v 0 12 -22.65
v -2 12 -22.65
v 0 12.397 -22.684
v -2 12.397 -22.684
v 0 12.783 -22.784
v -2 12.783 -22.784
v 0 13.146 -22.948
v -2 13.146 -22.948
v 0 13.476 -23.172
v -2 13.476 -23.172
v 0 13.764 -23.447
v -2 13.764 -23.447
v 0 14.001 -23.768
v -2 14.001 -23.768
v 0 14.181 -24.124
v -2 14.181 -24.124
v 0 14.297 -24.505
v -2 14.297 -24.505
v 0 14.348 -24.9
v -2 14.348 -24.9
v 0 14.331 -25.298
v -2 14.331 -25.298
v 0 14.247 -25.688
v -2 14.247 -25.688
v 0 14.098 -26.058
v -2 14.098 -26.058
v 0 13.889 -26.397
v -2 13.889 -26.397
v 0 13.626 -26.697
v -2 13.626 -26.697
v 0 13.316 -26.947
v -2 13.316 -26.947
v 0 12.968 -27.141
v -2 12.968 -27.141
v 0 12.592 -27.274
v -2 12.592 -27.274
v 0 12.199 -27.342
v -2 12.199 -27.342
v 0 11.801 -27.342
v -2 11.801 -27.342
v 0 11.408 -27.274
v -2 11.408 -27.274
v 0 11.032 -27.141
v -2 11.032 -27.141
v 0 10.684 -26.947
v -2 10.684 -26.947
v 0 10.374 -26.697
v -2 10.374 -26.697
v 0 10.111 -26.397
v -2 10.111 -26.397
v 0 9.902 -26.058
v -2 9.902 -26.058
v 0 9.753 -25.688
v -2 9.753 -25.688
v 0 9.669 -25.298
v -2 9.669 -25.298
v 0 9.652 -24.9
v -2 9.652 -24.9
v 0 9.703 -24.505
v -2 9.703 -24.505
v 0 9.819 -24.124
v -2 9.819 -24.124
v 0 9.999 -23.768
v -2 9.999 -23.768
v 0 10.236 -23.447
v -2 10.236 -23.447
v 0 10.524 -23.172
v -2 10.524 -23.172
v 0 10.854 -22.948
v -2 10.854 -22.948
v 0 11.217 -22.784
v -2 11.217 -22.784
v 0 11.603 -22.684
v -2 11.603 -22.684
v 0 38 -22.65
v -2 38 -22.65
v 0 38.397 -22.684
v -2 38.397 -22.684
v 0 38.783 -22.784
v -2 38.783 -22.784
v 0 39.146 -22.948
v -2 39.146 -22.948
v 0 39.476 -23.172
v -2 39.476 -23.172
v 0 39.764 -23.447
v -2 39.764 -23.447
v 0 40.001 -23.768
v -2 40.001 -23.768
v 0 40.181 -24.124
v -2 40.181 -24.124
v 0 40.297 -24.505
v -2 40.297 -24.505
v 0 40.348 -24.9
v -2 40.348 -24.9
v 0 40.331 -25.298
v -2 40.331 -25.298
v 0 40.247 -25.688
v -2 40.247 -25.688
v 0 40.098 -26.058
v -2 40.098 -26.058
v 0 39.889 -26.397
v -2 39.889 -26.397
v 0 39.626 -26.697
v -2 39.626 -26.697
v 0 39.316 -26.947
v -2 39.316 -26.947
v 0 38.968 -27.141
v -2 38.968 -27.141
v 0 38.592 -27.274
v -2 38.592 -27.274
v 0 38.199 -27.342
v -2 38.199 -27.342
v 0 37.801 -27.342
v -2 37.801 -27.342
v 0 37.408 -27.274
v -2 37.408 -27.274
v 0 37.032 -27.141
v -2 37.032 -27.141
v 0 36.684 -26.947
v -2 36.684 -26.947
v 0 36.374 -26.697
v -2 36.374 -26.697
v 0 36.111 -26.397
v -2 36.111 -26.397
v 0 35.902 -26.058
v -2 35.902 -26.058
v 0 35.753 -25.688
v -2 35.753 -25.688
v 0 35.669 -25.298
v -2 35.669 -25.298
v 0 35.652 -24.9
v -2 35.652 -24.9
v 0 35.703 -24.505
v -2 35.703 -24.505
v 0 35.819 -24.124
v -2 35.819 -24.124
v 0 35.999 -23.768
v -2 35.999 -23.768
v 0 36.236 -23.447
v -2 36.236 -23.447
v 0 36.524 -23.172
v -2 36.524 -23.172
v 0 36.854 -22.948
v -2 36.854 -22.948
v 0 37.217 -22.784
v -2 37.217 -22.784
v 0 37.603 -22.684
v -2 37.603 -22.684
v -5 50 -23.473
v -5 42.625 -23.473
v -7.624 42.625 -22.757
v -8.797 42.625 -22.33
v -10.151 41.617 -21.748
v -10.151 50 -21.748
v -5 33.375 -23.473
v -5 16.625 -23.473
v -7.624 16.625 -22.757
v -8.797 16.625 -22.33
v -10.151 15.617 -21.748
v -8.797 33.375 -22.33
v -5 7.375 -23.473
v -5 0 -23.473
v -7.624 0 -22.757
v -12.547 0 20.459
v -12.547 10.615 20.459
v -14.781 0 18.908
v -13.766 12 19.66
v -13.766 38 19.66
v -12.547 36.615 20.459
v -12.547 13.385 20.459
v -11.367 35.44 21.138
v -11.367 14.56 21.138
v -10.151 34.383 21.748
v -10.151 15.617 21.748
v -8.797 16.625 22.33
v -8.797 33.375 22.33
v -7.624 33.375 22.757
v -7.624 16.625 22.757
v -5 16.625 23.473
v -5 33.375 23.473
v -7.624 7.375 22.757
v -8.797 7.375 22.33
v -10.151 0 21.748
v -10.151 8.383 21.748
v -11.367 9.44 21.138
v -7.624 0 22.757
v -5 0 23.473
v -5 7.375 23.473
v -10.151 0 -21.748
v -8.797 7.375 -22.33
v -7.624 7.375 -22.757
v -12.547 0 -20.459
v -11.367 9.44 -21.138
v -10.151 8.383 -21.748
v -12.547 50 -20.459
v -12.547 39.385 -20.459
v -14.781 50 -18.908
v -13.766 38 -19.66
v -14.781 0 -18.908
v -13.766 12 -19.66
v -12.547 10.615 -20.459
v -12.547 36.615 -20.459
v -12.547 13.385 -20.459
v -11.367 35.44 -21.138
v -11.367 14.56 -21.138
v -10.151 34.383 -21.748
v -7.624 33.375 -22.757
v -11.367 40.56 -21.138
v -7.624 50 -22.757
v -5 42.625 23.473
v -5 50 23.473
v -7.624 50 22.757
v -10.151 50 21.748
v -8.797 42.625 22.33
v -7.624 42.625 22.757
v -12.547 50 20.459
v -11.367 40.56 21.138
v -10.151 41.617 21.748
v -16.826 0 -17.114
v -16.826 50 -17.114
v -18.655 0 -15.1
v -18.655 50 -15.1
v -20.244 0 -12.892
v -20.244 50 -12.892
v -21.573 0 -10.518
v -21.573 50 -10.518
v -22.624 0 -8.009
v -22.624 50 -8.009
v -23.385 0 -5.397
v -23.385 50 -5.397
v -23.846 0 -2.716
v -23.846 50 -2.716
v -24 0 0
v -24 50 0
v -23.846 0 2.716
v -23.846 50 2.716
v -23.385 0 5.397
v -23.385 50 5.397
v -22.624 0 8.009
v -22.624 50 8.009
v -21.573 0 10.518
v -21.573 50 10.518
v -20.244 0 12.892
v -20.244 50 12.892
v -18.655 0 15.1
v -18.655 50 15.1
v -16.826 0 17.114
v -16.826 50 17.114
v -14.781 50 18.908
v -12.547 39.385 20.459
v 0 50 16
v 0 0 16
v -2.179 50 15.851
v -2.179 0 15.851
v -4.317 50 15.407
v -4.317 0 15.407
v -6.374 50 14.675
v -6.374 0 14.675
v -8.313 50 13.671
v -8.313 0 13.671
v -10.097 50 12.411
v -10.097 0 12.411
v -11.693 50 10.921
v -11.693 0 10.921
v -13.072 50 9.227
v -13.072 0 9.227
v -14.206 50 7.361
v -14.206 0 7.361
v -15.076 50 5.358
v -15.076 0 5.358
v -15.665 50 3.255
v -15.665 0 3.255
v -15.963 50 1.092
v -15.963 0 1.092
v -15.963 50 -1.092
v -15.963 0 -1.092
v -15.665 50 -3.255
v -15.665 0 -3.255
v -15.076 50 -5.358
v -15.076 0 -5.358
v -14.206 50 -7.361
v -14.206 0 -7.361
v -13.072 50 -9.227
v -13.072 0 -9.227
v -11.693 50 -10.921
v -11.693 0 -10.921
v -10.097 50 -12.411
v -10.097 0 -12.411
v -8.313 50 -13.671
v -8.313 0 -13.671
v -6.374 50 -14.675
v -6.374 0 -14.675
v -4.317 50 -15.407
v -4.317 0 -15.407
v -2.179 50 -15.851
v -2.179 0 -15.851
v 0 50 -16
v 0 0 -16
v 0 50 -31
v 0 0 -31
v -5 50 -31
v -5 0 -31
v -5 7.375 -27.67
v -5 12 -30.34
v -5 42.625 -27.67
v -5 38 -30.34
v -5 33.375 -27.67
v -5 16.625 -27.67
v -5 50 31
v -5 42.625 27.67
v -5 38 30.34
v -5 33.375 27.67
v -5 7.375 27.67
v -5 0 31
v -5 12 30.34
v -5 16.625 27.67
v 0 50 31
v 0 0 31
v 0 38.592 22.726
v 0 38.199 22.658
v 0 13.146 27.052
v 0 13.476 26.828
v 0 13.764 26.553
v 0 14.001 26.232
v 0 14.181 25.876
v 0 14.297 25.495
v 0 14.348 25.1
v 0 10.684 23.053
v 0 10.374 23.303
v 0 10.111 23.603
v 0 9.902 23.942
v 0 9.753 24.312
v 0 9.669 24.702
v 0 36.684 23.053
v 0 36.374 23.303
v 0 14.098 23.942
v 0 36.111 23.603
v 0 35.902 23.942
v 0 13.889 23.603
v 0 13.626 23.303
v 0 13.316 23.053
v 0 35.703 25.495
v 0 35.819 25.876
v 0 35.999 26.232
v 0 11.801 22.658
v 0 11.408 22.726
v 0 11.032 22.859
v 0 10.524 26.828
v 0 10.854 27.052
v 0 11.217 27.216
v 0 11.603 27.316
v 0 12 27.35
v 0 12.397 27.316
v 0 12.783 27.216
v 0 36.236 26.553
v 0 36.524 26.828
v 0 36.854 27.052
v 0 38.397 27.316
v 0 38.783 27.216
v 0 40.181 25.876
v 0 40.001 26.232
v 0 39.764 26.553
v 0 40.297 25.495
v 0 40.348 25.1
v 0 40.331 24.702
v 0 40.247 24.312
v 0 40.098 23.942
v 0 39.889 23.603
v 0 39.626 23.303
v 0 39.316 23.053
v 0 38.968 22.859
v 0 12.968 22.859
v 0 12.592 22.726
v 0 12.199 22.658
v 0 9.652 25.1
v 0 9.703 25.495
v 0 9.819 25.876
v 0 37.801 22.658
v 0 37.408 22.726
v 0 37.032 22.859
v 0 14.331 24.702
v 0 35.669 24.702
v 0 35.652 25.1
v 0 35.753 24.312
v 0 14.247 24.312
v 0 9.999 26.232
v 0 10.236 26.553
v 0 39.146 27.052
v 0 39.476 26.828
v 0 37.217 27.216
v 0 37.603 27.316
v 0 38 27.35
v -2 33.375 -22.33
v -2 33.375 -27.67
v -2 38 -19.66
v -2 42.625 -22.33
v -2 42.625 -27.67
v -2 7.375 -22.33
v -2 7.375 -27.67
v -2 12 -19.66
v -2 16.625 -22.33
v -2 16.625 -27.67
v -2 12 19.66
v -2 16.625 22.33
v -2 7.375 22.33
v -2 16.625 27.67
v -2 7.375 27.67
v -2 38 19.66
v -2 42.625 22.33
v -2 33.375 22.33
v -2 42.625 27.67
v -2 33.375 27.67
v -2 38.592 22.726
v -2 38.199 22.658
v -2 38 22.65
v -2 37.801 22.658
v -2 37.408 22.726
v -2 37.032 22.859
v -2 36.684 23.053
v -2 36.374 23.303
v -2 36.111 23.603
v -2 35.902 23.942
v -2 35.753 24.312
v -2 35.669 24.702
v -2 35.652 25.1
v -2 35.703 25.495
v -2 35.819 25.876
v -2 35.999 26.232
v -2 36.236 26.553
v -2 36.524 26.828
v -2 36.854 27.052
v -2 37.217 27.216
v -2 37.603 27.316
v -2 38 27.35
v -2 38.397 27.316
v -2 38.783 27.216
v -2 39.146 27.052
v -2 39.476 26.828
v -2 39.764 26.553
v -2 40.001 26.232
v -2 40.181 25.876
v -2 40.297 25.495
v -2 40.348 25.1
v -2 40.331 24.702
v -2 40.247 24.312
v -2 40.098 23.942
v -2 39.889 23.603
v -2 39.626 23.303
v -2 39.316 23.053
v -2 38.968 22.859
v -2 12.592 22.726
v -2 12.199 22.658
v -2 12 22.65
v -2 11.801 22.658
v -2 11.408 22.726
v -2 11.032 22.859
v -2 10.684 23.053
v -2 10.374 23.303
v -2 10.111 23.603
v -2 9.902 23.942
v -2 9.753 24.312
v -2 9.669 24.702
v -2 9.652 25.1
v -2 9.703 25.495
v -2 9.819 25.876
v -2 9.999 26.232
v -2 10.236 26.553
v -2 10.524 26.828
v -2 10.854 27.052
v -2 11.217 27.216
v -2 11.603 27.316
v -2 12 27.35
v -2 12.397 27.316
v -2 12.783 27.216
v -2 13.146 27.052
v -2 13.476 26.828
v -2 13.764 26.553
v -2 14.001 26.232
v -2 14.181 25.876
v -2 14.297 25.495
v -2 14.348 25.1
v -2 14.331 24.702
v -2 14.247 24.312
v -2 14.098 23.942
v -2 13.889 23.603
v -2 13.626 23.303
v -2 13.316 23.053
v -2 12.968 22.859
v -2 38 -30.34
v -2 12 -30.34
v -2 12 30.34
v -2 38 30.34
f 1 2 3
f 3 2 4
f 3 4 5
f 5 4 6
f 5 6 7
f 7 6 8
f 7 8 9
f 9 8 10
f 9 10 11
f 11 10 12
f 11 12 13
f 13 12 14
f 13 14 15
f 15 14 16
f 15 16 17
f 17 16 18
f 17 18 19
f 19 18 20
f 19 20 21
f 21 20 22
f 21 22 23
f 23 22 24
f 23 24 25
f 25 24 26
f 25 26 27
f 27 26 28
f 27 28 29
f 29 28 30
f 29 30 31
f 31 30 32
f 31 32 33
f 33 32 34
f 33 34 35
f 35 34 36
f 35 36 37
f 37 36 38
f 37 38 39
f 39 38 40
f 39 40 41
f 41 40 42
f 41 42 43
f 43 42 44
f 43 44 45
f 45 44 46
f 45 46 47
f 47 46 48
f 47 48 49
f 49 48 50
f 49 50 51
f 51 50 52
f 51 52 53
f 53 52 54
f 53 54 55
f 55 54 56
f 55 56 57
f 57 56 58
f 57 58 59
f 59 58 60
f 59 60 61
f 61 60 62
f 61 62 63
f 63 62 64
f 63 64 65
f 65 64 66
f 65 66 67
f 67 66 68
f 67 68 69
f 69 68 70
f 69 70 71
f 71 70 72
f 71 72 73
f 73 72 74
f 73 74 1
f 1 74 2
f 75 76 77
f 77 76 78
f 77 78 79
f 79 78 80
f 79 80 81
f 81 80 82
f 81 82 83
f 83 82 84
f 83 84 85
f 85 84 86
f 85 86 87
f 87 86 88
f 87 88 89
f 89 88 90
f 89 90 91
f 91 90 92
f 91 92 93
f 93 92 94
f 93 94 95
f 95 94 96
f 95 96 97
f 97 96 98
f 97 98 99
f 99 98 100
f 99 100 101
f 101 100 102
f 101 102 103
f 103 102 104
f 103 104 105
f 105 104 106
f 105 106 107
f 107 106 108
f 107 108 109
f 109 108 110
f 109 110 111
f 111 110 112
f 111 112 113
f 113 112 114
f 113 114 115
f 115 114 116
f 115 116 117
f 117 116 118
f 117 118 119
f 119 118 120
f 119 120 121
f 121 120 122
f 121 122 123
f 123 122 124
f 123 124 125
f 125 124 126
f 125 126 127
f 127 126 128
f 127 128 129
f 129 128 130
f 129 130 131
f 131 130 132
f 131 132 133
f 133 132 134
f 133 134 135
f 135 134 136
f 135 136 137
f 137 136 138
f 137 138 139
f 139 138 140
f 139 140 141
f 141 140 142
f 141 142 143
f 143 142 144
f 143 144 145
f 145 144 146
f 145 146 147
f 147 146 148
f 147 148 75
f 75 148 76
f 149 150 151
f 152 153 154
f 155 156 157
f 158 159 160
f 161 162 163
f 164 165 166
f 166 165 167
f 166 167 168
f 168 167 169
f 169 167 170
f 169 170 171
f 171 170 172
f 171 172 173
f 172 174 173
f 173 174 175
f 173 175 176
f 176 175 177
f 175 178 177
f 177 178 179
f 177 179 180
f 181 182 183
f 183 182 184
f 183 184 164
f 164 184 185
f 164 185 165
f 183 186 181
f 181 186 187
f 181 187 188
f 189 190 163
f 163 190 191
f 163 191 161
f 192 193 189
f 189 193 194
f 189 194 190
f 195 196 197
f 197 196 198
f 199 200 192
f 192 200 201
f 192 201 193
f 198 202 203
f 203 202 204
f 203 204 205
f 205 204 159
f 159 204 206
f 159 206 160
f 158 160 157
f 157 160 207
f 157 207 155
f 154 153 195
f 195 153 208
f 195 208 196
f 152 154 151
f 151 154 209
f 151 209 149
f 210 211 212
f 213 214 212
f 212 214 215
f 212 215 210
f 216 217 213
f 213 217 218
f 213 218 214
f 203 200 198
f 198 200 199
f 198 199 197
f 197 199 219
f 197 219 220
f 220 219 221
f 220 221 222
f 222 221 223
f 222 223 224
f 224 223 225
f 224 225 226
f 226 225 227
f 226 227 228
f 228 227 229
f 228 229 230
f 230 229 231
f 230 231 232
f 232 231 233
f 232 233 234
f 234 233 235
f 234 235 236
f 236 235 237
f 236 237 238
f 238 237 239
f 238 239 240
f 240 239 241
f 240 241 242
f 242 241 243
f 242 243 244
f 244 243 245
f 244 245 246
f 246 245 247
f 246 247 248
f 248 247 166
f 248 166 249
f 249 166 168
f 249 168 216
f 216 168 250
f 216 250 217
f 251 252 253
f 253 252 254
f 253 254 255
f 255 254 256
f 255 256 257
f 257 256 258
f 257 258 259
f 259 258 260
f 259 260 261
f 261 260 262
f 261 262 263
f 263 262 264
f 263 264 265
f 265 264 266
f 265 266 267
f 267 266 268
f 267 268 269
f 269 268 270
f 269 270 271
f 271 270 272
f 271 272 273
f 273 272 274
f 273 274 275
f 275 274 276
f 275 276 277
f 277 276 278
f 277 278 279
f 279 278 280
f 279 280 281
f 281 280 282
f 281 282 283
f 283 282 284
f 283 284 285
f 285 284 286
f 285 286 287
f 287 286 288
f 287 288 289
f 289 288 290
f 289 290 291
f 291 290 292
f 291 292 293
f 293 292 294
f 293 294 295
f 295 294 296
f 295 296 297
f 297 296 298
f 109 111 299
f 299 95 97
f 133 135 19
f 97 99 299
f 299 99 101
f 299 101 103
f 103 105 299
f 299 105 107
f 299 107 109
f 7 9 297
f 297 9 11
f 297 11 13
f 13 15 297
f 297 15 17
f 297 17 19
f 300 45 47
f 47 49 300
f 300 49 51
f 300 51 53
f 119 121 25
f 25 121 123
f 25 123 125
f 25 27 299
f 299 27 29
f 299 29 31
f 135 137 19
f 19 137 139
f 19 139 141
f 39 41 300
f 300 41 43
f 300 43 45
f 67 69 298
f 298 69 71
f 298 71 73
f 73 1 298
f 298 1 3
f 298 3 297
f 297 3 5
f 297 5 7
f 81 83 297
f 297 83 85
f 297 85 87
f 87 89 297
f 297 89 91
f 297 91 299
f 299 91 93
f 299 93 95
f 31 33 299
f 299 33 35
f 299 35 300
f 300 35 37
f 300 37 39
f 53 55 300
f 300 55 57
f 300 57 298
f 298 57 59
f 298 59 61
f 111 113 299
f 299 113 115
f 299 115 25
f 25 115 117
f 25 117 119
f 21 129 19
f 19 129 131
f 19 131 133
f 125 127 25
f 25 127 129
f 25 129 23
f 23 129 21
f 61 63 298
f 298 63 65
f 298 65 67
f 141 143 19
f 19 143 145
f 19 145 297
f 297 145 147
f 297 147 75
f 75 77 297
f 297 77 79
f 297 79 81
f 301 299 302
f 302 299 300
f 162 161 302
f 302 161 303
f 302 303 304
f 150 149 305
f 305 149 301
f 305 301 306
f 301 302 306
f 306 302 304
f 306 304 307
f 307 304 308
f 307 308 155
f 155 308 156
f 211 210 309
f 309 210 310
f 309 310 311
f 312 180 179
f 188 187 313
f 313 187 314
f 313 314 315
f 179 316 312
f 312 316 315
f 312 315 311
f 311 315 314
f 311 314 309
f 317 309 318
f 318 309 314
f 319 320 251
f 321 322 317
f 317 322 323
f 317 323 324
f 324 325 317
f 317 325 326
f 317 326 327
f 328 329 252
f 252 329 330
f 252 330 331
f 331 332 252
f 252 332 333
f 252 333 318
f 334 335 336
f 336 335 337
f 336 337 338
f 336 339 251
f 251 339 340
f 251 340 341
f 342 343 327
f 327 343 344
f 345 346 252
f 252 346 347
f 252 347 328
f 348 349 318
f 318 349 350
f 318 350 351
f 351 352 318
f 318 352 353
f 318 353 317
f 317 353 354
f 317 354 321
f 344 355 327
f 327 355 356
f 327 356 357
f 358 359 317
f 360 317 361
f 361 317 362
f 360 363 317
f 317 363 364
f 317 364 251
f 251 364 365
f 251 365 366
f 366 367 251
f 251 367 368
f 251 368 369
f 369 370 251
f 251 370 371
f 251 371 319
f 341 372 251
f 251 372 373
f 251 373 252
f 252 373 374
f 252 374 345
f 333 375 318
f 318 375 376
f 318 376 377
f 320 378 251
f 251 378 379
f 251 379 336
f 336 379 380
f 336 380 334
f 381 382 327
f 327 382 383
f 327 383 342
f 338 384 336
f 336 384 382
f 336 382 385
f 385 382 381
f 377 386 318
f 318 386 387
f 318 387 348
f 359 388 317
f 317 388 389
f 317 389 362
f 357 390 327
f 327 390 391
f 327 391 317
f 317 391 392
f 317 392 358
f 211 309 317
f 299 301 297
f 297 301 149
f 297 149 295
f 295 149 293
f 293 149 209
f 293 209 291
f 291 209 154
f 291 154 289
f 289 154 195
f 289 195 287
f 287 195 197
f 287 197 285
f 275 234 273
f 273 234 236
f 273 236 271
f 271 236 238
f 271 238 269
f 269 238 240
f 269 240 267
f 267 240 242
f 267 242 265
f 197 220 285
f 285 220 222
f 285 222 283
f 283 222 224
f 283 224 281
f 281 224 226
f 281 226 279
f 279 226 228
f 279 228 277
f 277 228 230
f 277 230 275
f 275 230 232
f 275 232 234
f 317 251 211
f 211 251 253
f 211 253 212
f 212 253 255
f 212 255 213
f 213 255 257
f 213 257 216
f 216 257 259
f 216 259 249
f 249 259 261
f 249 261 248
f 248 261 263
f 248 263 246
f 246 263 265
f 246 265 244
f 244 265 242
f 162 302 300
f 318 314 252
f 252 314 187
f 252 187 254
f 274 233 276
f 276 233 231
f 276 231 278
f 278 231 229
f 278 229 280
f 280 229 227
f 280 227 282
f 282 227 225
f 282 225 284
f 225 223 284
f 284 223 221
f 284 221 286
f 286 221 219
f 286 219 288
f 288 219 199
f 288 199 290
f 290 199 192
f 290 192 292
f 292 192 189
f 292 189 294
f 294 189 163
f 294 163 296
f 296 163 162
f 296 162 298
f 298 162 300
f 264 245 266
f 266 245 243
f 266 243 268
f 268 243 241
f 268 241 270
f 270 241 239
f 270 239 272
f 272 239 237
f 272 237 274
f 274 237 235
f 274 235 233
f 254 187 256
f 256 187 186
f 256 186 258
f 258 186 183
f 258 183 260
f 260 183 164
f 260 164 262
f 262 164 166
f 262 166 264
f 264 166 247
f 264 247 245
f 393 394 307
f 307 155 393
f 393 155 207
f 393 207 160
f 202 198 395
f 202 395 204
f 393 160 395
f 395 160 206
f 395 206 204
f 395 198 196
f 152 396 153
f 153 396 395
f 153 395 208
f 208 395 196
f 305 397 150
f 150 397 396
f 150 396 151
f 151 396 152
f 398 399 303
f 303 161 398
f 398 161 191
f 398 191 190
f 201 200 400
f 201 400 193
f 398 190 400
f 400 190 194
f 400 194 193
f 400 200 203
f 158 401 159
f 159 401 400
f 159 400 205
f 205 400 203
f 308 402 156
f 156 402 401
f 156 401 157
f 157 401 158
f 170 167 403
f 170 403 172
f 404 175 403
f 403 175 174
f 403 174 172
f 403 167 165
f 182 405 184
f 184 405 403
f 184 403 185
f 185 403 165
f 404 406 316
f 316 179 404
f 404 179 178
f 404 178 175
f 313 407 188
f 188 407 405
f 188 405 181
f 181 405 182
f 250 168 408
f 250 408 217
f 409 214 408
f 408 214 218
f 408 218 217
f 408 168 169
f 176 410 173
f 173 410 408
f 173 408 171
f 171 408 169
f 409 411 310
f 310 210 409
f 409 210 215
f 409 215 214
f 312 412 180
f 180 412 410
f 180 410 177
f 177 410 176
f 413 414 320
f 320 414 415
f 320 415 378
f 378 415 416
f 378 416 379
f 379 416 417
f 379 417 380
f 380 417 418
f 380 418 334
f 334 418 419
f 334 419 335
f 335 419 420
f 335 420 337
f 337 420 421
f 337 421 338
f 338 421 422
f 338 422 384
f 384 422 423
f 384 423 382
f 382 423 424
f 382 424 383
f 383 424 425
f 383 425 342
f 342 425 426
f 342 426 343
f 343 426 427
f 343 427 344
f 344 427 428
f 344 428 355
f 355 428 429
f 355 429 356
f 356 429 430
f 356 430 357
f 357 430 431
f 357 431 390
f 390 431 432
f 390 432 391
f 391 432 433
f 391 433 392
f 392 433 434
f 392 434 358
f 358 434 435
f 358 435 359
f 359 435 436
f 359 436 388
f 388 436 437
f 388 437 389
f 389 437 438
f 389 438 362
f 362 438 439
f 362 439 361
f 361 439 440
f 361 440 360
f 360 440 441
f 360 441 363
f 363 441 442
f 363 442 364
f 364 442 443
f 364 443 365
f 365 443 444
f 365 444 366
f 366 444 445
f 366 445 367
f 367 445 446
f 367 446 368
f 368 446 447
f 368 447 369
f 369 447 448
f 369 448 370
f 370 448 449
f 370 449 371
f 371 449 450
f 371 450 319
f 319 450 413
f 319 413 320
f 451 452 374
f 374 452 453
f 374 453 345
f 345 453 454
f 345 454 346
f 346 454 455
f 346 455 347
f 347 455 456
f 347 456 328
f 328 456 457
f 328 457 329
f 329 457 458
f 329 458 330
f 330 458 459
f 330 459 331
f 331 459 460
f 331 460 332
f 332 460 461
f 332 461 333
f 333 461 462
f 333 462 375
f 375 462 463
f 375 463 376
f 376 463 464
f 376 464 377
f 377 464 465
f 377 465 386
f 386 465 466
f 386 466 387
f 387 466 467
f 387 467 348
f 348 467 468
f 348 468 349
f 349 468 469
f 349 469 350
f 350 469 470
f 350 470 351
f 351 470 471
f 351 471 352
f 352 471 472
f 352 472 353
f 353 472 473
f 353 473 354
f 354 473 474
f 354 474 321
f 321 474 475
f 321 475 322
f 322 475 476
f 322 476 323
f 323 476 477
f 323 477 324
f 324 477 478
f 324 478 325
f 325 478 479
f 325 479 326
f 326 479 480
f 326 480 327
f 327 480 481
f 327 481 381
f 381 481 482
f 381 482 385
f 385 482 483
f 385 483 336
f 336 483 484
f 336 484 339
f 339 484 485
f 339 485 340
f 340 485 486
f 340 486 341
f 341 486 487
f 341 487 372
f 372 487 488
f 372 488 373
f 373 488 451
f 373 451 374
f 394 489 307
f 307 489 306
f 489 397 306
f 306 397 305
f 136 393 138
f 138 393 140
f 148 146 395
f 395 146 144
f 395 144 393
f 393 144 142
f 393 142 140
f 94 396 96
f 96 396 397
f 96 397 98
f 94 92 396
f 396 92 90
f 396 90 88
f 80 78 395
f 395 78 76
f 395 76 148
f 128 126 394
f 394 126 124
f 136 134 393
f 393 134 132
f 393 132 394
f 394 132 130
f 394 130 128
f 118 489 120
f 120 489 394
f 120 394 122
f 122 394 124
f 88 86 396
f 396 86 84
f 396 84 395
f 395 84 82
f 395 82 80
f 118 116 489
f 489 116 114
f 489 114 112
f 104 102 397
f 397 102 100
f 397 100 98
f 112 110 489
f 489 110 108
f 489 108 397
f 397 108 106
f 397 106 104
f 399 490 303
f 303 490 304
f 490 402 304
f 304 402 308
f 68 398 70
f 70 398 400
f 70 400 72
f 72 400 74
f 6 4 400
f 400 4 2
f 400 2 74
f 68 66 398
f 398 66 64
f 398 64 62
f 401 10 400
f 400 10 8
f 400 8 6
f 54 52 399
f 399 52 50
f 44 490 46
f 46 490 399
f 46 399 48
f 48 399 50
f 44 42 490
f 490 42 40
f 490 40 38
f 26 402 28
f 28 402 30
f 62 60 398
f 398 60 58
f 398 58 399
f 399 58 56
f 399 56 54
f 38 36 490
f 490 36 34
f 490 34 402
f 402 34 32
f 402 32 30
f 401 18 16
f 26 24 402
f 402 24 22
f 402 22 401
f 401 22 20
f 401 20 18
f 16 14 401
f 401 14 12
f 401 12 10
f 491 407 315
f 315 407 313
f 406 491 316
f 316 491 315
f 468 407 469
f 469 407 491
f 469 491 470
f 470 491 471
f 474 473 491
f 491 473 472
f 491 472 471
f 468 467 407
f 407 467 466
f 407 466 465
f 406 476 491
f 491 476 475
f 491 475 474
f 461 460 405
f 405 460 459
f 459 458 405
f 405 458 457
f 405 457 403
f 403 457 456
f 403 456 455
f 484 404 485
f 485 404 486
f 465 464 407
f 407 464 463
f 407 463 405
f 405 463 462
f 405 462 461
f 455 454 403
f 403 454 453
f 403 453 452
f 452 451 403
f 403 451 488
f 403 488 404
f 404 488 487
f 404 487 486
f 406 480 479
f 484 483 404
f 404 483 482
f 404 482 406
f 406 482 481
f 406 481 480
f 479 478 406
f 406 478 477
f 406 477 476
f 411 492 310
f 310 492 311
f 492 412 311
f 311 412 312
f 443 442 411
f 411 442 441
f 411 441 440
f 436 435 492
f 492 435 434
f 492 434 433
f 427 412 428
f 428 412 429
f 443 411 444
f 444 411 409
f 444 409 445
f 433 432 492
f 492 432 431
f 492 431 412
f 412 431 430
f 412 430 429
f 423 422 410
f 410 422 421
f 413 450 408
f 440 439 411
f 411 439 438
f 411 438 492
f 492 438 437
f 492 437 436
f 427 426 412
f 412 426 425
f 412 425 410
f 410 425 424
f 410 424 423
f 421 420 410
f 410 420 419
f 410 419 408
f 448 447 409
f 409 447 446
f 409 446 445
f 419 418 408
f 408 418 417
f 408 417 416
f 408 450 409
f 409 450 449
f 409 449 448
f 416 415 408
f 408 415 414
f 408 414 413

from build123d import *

# Parameters (mm, degrees)
BOSS_EXTRUDE1_DEPTH = 50
CUT_EXTRUDE1_DEPTH  = 50
SKETCH2_7_R         = 2.35
CUT_EXTRUDE5_DEPTH  = 10
SKETCH2_10_R        = 2.35
CUT_EXTRUDE8_DEPTH  = 3


with BuildPart() as part:
    # Sketch1 → Boss-Extrude1 (new body)
    with BuildSketch(Plane(origin=(0, 0, 0), x_dir=(1, 0, 0), z_dir=(0, 1, 0))):
        with BuildLine():
            Line((0, -16), (0, -31))
            Line((0, -31), (-5, -31))
            Line((-5, -31), (-5, -23.473389189))
            ThreePointArc((-5, -23.473389189), (-24, 0), (-5, 23.473389189))
            Line((-5, 23.473389189), (-5, 31))
            Line((-5, 31), (0, 31))
            Line((0, 31), (0, 16))
            ThreePointArc((0, 16), (-16, 0), (0, -16))
        make_face()
    extrude(amount=BOSS_EXTRUDE1_DEPTH)

    # Sketch2 → Cut-Extrude1 (cut)
    with BuildSketch(Plane.ZY.offset(5)):
        Polygon((-22.329755005, 33.375), (-19.65951001, 38), (-22.329755005, 42.625), (-27.670244995, 42.625), (-30.34048999, 38), (-27.670244995, 33.375), align=None)
        Polygon((-22.329755005, 7.375), (-19.65951001, 12), (-22.329755005, 16.625), (-27.670244995, 16.625), (-30.34048999, 12), (-27.670244995, 7.375), align=None)
        Polygon((27.670244995, 7.375), (22.329755005, 7.375), (19.65951001, 12), (22.329755005, 16.625), (27.670244995, 16.625), (30.34048999, 12), align=None)
        Polygon((27.670244995, 42.625), (30.34048999, 38), (27.670244995, 33.375), (22.329755005, 33.375), (19.65951001, 38), (22.329755005, 42.625), align=None)
    extrude(amount=CUT_EXTRUDE1_DEPTH, mode=Mode.SUBTRACT)

    # Sketch2<7> → Cut-Extrude5 (cut)
    with BuildSketch(Plane.ZY.offset(5)):
        with Locations((-25, 38)):
            Circle(SKETCH2_7_R)
        with Locations((-25, 12)):
            Circle(SKETCH2_7_R)
        with Locations((25, 12)):
            Circle(SKETCH2_7_R)
        with Locations((25, 38)):
            Circle(SKETCH2_7_R)
    extrude(amount=-CUT_EXTRUDE5_DEPTH, mode=Mode.SUBTRACT)

    # Sketch2<10> → Cut-Extrude8 (cut)
    # profile 1 of 4: a face of its own
    with BuildSketch(Plane.ZY.offset(5)):
        Polygon((-22.329755005, 33.375), (-19.65951001, 38), (-22.329755005, 42.625), (-27.670244995, 42.625), (-30.34048999, 38), (-27.670244995, 33.375), align=None)
        with Locations((-25, 38)):
            Circle(SKETCH2_10_R, mode=Mode.SUBTRACT)
    # profile 2 of 4: a face of its own
    with BuildSketch(Plane.ZY.offset(5)):
        Polygon((-22.329755005, 7.375), (-19.65951001, 12), (-22.329755005, 16.625), (-27.670244995, 16.625), (-30.34048999, 12), (-27.670244995, 7.375), align=None)
        with Locations((-25, 12)):
            Circle(SKETCH2_10_R, mode=Mode.SUBTRACT)
    # profile 3 of 4: a face of its own
    with BuildSketch(Plane.ZY.offset(5)):
        Polygon((27.670244995, 7.375), (22.329755005, 7.375), (19.65951001, 12), (22.329755005, 16.625), (27.670244995, 16.625), (30.34048999, 12), align=None)
        with Locations((25, 12)):
            Circle(SKETCH2_10_R, mode=Mode.SUBTRACT)
    # profile 4 of 4: a face of its own
    with BuildSketch(Plane.ZY.offset(5)):
        Polygon((27.670244995, 42.625), (30.34048999, 38), (27.670244995, 33.375), (22.329755005, 33.375), (19.65951001, 38), (22.329755005, 42.625), align=None)
        with Locations((25, 38)):
            Circle(SKETCH2_10_R, mode=Mode.SUBTRACT)
    extrude(amount=-CUT_EXTRUDE8_DEPTH, mode=Mode.SUBTRACT)


solid = part.part
